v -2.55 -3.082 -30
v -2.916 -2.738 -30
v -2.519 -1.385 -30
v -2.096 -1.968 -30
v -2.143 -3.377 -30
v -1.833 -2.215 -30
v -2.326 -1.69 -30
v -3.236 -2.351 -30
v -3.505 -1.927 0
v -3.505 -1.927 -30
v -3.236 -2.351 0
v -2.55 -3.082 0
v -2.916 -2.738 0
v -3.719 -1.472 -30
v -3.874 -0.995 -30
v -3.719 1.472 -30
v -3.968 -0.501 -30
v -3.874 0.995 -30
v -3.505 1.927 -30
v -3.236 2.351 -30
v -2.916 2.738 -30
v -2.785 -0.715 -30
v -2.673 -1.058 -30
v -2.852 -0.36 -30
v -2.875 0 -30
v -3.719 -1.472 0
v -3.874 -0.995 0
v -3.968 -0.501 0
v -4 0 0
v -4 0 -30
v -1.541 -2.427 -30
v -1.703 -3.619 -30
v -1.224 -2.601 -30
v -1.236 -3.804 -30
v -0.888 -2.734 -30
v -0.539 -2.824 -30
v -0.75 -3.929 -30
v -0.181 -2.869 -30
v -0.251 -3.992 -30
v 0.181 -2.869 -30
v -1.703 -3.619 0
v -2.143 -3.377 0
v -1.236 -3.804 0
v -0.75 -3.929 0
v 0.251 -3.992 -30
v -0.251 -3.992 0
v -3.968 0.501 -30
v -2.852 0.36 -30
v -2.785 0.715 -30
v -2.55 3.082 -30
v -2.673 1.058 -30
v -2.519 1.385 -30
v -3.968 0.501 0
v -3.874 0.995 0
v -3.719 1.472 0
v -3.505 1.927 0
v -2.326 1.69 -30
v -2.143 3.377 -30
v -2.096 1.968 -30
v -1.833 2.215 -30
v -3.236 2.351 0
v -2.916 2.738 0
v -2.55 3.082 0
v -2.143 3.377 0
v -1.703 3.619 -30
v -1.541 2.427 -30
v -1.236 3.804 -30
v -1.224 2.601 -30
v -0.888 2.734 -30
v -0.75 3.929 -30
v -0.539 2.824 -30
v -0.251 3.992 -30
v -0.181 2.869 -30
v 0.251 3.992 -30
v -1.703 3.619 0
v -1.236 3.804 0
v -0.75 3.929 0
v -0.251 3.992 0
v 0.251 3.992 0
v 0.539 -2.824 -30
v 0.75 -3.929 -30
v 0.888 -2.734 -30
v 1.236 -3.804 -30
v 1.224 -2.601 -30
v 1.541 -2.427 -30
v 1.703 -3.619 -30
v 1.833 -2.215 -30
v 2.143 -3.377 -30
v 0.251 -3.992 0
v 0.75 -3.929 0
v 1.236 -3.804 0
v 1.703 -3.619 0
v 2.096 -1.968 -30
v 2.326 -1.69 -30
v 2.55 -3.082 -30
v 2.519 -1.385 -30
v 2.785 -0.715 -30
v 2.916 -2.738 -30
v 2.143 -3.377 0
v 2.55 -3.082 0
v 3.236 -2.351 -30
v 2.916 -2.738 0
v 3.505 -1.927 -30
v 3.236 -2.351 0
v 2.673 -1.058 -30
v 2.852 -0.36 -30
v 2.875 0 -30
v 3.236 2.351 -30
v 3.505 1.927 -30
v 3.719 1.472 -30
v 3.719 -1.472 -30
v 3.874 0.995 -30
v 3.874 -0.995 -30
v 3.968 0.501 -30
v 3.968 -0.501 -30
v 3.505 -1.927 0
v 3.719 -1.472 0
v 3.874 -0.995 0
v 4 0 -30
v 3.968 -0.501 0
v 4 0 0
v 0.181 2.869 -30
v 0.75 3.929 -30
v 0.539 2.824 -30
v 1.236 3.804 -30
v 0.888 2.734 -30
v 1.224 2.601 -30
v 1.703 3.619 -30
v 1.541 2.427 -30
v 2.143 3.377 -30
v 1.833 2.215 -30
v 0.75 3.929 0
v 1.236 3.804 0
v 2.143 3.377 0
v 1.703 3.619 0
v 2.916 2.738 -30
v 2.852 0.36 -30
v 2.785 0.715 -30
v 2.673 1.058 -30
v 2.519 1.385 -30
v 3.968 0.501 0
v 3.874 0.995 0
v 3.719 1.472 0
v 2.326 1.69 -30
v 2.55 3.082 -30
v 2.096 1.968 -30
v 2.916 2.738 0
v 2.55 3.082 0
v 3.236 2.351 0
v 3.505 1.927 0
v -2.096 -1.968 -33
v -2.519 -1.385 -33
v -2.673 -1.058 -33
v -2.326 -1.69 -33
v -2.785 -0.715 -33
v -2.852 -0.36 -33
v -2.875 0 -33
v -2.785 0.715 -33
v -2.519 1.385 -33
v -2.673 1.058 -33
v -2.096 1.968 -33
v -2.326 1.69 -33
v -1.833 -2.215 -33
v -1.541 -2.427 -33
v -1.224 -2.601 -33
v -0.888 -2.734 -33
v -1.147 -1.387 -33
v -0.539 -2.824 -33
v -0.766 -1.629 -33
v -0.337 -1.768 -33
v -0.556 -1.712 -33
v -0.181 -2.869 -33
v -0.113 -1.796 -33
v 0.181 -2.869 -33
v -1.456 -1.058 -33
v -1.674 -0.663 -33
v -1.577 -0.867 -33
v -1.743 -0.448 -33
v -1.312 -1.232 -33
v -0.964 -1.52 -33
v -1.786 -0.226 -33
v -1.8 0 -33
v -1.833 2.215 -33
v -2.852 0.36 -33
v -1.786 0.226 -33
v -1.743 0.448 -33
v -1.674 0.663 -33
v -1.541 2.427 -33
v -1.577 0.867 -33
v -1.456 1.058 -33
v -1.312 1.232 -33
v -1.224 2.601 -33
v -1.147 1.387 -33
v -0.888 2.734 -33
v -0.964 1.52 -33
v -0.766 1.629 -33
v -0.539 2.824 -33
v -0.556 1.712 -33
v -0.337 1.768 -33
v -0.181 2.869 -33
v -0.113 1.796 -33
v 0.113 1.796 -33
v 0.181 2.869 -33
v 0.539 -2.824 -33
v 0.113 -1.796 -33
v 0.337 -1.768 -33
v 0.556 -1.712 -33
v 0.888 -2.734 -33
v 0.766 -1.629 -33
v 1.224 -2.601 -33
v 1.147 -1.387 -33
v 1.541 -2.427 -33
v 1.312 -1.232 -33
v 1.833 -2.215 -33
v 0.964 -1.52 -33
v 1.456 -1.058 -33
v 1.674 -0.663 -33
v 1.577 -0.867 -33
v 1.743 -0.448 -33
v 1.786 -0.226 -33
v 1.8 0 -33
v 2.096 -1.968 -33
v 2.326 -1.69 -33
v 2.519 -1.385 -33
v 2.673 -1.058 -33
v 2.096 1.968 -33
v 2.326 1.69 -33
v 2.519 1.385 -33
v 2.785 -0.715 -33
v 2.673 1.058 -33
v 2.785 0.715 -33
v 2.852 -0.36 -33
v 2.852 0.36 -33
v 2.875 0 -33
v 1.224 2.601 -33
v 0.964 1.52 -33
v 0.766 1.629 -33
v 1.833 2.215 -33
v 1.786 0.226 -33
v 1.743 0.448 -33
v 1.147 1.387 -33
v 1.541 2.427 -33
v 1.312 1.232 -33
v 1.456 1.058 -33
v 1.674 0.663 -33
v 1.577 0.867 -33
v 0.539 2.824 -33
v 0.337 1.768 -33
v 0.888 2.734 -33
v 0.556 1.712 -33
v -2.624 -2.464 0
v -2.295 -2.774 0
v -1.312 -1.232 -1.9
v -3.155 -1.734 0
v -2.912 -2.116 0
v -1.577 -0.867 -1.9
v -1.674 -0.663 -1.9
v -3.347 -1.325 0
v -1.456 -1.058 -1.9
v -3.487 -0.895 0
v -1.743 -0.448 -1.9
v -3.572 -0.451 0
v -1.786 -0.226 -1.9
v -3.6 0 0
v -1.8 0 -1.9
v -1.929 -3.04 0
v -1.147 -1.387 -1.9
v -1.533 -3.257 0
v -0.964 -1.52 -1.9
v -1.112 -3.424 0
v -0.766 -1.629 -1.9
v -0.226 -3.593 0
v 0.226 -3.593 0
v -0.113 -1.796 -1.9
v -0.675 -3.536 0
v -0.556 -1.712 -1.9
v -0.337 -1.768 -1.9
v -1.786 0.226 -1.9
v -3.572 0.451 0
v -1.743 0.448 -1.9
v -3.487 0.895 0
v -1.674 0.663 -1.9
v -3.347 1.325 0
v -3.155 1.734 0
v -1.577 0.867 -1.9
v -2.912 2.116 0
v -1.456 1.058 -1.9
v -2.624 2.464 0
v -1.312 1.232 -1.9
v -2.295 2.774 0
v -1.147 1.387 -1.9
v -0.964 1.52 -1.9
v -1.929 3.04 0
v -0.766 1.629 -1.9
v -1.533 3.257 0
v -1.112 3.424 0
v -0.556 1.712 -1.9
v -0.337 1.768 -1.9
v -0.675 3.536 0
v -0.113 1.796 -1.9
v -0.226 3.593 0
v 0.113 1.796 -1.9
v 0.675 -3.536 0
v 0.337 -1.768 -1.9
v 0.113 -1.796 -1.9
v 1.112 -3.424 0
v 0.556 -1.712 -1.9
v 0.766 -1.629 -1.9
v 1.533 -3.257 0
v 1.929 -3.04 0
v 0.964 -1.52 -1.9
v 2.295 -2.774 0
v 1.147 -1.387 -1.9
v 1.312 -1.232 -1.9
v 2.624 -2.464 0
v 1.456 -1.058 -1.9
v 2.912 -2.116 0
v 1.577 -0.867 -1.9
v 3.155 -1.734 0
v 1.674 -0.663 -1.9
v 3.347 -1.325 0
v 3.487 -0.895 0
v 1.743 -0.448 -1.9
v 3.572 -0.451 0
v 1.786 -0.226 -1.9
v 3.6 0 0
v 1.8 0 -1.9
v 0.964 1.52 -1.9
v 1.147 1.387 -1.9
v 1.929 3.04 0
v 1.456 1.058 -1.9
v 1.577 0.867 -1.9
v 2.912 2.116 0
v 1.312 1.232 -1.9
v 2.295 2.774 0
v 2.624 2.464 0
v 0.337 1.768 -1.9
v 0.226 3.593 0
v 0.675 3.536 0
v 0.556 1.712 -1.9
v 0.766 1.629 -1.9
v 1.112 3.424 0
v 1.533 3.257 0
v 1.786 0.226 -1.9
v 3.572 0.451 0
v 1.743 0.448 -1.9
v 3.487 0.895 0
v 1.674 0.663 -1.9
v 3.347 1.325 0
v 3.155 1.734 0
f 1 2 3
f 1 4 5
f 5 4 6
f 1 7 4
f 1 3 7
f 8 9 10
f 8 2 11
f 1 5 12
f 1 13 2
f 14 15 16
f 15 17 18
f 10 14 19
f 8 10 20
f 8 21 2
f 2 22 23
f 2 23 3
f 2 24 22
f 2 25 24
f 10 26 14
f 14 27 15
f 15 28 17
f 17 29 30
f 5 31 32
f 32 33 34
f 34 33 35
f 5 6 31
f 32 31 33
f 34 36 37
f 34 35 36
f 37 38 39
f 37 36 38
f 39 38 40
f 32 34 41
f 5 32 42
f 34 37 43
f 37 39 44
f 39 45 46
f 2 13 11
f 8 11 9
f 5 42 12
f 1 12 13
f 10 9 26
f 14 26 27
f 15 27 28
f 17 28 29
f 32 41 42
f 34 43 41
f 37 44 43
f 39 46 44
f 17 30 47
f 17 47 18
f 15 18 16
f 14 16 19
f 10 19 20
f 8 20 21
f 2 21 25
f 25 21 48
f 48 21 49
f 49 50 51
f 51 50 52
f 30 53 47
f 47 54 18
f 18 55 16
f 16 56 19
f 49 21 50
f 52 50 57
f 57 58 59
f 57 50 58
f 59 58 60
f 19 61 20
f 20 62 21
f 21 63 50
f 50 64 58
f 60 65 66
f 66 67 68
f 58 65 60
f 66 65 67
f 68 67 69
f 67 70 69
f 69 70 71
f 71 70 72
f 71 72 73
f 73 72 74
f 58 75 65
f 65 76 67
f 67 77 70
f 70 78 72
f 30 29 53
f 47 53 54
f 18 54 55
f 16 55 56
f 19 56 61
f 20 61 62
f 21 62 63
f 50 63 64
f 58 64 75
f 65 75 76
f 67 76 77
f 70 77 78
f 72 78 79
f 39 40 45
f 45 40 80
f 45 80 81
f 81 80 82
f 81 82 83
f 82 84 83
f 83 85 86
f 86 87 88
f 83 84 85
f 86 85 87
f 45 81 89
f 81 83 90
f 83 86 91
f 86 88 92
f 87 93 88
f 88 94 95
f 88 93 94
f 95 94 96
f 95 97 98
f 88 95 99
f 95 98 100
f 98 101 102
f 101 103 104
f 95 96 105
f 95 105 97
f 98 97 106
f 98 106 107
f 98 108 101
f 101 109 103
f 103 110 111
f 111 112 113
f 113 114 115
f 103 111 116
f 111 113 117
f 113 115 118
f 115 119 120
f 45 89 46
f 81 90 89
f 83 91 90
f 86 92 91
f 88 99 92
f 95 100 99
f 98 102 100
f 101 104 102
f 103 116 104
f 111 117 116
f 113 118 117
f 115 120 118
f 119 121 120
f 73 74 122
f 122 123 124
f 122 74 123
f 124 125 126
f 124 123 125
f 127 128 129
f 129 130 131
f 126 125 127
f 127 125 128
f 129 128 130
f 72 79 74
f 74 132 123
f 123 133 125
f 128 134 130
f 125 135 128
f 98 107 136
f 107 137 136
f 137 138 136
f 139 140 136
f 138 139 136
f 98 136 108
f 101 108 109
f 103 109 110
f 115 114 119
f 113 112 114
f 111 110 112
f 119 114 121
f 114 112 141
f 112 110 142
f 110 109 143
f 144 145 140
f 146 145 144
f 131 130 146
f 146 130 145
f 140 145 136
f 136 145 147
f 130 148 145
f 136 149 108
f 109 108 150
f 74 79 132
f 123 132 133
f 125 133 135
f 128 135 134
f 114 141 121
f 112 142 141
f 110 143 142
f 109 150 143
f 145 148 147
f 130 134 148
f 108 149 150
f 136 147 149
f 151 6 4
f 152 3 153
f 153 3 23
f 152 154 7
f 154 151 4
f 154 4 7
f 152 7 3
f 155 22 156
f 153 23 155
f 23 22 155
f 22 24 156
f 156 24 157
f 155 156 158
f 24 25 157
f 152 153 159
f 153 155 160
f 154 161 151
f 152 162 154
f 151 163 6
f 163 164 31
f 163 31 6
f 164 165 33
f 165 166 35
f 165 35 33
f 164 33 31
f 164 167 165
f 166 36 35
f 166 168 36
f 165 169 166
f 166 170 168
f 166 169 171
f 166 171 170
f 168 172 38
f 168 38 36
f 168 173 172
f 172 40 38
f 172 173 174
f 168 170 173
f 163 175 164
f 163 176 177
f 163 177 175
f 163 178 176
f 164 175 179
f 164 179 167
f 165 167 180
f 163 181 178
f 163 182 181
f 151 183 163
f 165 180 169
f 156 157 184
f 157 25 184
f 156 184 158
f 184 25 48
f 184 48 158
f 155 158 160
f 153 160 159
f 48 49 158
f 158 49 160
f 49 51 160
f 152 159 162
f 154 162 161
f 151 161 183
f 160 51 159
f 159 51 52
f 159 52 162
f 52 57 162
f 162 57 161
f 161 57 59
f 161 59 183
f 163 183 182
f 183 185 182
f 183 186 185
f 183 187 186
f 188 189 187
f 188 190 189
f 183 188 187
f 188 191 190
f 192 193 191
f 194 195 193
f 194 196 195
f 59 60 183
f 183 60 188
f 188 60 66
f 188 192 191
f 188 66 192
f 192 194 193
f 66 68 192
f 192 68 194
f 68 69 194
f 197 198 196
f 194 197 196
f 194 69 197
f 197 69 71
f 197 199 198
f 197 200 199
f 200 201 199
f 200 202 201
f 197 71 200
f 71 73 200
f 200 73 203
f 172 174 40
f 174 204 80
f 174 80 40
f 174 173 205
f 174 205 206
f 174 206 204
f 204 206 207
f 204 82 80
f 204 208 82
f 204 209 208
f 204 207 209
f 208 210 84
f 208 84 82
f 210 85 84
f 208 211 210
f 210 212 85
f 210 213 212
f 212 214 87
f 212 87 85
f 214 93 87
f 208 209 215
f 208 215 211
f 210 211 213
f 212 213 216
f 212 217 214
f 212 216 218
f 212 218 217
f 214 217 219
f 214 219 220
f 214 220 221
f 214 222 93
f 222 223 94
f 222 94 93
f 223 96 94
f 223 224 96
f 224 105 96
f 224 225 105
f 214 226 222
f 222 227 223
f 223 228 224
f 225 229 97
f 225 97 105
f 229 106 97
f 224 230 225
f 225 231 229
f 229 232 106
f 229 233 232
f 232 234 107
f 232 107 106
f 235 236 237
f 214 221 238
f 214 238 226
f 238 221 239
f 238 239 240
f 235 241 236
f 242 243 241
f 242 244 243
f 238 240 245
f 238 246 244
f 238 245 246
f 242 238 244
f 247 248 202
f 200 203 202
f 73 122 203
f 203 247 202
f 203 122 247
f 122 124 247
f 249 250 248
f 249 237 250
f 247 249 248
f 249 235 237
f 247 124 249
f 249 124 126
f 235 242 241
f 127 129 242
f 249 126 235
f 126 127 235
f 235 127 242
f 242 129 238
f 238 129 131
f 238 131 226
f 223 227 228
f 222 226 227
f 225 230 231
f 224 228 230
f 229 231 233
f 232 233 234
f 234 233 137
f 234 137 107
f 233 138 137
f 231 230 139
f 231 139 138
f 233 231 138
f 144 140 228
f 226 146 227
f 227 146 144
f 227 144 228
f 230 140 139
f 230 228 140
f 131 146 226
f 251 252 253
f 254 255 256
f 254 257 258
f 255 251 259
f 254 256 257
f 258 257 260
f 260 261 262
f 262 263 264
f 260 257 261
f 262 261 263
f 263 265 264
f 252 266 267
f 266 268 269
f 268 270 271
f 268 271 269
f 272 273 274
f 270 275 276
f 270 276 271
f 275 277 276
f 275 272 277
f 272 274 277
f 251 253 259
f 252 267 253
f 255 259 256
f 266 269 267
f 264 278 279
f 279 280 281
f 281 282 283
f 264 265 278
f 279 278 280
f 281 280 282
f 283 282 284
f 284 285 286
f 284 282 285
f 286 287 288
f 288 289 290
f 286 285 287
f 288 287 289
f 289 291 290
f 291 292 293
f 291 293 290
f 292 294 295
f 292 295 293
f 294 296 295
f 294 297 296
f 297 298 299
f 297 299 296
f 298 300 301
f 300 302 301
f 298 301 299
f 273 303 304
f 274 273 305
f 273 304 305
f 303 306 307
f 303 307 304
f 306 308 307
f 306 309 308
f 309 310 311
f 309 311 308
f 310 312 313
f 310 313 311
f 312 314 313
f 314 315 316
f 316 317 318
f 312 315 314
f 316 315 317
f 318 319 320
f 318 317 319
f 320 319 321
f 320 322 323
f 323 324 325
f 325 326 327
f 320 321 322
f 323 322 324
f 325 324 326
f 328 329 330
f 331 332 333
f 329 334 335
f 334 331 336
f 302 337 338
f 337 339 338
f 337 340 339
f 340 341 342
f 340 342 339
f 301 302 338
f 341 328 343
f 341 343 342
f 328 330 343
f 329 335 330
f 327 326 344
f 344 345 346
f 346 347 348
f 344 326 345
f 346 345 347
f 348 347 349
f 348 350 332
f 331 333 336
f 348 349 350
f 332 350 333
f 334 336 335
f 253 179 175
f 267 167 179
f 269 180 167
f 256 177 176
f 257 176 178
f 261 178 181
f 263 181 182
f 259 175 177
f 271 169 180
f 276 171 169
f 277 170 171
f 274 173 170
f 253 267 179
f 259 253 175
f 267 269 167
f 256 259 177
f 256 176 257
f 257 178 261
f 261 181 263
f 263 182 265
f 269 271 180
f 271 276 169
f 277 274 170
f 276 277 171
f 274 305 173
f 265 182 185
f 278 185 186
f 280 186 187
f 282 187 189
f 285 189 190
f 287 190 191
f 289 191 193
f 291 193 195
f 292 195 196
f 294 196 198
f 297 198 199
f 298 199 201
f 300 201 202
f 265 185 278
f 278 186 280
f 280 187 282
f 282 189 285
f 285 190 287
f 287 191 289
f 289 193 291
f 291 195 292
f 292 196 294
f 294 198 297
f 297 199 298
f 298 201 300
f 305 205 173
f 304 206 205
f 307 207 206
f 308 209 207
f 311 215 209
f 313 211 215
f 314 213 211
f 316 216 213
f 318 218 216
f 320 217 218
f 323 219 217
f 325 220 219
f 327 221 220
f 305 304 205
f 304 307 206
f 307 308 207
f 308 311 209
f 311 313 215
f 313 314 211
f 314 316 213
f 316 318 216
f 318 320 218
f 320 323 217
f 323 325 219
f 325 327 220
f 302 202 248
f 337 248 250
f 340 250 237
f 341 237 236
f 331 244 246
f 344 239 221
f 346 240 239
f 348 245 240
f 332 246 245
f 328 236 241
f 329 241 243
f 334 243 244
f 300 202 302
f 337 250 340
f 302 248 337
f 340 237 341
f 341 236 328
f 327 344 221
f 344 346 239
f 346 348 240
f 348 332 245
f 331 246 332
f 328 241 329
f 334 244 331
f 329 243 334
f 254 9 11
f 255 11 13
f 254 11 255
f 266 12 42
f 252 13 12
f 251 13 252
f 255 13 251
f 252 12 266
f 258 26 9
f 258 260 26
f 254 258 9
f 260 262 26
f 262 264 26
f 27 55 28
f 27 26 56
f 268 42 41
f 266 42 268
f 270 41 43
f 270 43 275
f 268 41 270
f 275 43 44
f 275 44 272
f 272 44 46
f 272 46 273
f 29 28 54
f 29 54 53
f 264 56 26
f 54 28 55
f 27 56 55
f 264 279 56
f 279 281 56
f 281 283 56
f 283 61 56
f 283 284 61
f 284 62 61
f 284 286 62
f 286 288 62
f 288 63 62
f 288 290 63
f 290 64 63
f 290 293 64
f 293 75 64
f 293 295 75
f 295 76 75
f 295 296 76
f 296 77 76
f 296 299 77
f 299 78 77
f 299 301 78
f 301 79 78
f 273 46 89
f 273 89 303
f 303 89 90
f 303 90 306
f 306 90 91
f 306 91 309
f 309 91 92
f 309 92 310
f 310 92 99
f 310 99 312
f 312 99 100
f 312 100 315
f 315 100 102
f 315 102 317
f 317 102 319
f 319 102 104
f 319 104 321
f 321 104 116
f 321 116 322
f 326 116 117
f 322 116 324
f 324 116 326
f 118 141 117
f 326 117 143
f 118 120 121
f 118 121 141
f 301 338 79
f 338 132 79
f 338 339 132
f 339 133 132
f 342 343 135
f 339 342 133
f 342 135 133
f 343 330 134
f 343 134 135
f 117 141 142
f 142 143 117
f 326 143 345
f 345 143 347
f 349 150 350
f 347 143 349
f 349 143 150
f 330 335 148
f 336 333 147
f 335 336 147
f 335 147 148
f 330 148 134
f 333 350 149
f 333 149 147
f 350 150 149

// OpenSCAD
$fn = 50;

difference() {
	union() {
		translate(v = [0, 0, -30.0]) {
			cylinder(h = 33, r = 4.0);
		}
		#translate(v = [0, 0, -33.0]) {
			cylinder(h = 33, r = 2.875);
		}
	}
	union() {
		translate(v = [0, 0, 0]) {
			rotate(a = [0, 0, 0]) {
				difference() {
					union() {
						translate(v = [0, 0, -33.0]) {
							cylinder(h = 33, r = 1.5);
						}
						translate(v = [0, 0, -1.9]) {
							cylinder(h = 1.9, r1 = 1.8, r2 = 3.6);
						}
						translate(v = [0, 0, -33.0]) {
							cylinder(h = 33, r = 1.8);
						}
						translate(v = [0, 0, -33.0]) {
							cylinder(h = 33, r = 1.5);
						}
					}
					union();
				}
			}
		}
		#cylinder(h = 3, r = 5.0);
	}
}
